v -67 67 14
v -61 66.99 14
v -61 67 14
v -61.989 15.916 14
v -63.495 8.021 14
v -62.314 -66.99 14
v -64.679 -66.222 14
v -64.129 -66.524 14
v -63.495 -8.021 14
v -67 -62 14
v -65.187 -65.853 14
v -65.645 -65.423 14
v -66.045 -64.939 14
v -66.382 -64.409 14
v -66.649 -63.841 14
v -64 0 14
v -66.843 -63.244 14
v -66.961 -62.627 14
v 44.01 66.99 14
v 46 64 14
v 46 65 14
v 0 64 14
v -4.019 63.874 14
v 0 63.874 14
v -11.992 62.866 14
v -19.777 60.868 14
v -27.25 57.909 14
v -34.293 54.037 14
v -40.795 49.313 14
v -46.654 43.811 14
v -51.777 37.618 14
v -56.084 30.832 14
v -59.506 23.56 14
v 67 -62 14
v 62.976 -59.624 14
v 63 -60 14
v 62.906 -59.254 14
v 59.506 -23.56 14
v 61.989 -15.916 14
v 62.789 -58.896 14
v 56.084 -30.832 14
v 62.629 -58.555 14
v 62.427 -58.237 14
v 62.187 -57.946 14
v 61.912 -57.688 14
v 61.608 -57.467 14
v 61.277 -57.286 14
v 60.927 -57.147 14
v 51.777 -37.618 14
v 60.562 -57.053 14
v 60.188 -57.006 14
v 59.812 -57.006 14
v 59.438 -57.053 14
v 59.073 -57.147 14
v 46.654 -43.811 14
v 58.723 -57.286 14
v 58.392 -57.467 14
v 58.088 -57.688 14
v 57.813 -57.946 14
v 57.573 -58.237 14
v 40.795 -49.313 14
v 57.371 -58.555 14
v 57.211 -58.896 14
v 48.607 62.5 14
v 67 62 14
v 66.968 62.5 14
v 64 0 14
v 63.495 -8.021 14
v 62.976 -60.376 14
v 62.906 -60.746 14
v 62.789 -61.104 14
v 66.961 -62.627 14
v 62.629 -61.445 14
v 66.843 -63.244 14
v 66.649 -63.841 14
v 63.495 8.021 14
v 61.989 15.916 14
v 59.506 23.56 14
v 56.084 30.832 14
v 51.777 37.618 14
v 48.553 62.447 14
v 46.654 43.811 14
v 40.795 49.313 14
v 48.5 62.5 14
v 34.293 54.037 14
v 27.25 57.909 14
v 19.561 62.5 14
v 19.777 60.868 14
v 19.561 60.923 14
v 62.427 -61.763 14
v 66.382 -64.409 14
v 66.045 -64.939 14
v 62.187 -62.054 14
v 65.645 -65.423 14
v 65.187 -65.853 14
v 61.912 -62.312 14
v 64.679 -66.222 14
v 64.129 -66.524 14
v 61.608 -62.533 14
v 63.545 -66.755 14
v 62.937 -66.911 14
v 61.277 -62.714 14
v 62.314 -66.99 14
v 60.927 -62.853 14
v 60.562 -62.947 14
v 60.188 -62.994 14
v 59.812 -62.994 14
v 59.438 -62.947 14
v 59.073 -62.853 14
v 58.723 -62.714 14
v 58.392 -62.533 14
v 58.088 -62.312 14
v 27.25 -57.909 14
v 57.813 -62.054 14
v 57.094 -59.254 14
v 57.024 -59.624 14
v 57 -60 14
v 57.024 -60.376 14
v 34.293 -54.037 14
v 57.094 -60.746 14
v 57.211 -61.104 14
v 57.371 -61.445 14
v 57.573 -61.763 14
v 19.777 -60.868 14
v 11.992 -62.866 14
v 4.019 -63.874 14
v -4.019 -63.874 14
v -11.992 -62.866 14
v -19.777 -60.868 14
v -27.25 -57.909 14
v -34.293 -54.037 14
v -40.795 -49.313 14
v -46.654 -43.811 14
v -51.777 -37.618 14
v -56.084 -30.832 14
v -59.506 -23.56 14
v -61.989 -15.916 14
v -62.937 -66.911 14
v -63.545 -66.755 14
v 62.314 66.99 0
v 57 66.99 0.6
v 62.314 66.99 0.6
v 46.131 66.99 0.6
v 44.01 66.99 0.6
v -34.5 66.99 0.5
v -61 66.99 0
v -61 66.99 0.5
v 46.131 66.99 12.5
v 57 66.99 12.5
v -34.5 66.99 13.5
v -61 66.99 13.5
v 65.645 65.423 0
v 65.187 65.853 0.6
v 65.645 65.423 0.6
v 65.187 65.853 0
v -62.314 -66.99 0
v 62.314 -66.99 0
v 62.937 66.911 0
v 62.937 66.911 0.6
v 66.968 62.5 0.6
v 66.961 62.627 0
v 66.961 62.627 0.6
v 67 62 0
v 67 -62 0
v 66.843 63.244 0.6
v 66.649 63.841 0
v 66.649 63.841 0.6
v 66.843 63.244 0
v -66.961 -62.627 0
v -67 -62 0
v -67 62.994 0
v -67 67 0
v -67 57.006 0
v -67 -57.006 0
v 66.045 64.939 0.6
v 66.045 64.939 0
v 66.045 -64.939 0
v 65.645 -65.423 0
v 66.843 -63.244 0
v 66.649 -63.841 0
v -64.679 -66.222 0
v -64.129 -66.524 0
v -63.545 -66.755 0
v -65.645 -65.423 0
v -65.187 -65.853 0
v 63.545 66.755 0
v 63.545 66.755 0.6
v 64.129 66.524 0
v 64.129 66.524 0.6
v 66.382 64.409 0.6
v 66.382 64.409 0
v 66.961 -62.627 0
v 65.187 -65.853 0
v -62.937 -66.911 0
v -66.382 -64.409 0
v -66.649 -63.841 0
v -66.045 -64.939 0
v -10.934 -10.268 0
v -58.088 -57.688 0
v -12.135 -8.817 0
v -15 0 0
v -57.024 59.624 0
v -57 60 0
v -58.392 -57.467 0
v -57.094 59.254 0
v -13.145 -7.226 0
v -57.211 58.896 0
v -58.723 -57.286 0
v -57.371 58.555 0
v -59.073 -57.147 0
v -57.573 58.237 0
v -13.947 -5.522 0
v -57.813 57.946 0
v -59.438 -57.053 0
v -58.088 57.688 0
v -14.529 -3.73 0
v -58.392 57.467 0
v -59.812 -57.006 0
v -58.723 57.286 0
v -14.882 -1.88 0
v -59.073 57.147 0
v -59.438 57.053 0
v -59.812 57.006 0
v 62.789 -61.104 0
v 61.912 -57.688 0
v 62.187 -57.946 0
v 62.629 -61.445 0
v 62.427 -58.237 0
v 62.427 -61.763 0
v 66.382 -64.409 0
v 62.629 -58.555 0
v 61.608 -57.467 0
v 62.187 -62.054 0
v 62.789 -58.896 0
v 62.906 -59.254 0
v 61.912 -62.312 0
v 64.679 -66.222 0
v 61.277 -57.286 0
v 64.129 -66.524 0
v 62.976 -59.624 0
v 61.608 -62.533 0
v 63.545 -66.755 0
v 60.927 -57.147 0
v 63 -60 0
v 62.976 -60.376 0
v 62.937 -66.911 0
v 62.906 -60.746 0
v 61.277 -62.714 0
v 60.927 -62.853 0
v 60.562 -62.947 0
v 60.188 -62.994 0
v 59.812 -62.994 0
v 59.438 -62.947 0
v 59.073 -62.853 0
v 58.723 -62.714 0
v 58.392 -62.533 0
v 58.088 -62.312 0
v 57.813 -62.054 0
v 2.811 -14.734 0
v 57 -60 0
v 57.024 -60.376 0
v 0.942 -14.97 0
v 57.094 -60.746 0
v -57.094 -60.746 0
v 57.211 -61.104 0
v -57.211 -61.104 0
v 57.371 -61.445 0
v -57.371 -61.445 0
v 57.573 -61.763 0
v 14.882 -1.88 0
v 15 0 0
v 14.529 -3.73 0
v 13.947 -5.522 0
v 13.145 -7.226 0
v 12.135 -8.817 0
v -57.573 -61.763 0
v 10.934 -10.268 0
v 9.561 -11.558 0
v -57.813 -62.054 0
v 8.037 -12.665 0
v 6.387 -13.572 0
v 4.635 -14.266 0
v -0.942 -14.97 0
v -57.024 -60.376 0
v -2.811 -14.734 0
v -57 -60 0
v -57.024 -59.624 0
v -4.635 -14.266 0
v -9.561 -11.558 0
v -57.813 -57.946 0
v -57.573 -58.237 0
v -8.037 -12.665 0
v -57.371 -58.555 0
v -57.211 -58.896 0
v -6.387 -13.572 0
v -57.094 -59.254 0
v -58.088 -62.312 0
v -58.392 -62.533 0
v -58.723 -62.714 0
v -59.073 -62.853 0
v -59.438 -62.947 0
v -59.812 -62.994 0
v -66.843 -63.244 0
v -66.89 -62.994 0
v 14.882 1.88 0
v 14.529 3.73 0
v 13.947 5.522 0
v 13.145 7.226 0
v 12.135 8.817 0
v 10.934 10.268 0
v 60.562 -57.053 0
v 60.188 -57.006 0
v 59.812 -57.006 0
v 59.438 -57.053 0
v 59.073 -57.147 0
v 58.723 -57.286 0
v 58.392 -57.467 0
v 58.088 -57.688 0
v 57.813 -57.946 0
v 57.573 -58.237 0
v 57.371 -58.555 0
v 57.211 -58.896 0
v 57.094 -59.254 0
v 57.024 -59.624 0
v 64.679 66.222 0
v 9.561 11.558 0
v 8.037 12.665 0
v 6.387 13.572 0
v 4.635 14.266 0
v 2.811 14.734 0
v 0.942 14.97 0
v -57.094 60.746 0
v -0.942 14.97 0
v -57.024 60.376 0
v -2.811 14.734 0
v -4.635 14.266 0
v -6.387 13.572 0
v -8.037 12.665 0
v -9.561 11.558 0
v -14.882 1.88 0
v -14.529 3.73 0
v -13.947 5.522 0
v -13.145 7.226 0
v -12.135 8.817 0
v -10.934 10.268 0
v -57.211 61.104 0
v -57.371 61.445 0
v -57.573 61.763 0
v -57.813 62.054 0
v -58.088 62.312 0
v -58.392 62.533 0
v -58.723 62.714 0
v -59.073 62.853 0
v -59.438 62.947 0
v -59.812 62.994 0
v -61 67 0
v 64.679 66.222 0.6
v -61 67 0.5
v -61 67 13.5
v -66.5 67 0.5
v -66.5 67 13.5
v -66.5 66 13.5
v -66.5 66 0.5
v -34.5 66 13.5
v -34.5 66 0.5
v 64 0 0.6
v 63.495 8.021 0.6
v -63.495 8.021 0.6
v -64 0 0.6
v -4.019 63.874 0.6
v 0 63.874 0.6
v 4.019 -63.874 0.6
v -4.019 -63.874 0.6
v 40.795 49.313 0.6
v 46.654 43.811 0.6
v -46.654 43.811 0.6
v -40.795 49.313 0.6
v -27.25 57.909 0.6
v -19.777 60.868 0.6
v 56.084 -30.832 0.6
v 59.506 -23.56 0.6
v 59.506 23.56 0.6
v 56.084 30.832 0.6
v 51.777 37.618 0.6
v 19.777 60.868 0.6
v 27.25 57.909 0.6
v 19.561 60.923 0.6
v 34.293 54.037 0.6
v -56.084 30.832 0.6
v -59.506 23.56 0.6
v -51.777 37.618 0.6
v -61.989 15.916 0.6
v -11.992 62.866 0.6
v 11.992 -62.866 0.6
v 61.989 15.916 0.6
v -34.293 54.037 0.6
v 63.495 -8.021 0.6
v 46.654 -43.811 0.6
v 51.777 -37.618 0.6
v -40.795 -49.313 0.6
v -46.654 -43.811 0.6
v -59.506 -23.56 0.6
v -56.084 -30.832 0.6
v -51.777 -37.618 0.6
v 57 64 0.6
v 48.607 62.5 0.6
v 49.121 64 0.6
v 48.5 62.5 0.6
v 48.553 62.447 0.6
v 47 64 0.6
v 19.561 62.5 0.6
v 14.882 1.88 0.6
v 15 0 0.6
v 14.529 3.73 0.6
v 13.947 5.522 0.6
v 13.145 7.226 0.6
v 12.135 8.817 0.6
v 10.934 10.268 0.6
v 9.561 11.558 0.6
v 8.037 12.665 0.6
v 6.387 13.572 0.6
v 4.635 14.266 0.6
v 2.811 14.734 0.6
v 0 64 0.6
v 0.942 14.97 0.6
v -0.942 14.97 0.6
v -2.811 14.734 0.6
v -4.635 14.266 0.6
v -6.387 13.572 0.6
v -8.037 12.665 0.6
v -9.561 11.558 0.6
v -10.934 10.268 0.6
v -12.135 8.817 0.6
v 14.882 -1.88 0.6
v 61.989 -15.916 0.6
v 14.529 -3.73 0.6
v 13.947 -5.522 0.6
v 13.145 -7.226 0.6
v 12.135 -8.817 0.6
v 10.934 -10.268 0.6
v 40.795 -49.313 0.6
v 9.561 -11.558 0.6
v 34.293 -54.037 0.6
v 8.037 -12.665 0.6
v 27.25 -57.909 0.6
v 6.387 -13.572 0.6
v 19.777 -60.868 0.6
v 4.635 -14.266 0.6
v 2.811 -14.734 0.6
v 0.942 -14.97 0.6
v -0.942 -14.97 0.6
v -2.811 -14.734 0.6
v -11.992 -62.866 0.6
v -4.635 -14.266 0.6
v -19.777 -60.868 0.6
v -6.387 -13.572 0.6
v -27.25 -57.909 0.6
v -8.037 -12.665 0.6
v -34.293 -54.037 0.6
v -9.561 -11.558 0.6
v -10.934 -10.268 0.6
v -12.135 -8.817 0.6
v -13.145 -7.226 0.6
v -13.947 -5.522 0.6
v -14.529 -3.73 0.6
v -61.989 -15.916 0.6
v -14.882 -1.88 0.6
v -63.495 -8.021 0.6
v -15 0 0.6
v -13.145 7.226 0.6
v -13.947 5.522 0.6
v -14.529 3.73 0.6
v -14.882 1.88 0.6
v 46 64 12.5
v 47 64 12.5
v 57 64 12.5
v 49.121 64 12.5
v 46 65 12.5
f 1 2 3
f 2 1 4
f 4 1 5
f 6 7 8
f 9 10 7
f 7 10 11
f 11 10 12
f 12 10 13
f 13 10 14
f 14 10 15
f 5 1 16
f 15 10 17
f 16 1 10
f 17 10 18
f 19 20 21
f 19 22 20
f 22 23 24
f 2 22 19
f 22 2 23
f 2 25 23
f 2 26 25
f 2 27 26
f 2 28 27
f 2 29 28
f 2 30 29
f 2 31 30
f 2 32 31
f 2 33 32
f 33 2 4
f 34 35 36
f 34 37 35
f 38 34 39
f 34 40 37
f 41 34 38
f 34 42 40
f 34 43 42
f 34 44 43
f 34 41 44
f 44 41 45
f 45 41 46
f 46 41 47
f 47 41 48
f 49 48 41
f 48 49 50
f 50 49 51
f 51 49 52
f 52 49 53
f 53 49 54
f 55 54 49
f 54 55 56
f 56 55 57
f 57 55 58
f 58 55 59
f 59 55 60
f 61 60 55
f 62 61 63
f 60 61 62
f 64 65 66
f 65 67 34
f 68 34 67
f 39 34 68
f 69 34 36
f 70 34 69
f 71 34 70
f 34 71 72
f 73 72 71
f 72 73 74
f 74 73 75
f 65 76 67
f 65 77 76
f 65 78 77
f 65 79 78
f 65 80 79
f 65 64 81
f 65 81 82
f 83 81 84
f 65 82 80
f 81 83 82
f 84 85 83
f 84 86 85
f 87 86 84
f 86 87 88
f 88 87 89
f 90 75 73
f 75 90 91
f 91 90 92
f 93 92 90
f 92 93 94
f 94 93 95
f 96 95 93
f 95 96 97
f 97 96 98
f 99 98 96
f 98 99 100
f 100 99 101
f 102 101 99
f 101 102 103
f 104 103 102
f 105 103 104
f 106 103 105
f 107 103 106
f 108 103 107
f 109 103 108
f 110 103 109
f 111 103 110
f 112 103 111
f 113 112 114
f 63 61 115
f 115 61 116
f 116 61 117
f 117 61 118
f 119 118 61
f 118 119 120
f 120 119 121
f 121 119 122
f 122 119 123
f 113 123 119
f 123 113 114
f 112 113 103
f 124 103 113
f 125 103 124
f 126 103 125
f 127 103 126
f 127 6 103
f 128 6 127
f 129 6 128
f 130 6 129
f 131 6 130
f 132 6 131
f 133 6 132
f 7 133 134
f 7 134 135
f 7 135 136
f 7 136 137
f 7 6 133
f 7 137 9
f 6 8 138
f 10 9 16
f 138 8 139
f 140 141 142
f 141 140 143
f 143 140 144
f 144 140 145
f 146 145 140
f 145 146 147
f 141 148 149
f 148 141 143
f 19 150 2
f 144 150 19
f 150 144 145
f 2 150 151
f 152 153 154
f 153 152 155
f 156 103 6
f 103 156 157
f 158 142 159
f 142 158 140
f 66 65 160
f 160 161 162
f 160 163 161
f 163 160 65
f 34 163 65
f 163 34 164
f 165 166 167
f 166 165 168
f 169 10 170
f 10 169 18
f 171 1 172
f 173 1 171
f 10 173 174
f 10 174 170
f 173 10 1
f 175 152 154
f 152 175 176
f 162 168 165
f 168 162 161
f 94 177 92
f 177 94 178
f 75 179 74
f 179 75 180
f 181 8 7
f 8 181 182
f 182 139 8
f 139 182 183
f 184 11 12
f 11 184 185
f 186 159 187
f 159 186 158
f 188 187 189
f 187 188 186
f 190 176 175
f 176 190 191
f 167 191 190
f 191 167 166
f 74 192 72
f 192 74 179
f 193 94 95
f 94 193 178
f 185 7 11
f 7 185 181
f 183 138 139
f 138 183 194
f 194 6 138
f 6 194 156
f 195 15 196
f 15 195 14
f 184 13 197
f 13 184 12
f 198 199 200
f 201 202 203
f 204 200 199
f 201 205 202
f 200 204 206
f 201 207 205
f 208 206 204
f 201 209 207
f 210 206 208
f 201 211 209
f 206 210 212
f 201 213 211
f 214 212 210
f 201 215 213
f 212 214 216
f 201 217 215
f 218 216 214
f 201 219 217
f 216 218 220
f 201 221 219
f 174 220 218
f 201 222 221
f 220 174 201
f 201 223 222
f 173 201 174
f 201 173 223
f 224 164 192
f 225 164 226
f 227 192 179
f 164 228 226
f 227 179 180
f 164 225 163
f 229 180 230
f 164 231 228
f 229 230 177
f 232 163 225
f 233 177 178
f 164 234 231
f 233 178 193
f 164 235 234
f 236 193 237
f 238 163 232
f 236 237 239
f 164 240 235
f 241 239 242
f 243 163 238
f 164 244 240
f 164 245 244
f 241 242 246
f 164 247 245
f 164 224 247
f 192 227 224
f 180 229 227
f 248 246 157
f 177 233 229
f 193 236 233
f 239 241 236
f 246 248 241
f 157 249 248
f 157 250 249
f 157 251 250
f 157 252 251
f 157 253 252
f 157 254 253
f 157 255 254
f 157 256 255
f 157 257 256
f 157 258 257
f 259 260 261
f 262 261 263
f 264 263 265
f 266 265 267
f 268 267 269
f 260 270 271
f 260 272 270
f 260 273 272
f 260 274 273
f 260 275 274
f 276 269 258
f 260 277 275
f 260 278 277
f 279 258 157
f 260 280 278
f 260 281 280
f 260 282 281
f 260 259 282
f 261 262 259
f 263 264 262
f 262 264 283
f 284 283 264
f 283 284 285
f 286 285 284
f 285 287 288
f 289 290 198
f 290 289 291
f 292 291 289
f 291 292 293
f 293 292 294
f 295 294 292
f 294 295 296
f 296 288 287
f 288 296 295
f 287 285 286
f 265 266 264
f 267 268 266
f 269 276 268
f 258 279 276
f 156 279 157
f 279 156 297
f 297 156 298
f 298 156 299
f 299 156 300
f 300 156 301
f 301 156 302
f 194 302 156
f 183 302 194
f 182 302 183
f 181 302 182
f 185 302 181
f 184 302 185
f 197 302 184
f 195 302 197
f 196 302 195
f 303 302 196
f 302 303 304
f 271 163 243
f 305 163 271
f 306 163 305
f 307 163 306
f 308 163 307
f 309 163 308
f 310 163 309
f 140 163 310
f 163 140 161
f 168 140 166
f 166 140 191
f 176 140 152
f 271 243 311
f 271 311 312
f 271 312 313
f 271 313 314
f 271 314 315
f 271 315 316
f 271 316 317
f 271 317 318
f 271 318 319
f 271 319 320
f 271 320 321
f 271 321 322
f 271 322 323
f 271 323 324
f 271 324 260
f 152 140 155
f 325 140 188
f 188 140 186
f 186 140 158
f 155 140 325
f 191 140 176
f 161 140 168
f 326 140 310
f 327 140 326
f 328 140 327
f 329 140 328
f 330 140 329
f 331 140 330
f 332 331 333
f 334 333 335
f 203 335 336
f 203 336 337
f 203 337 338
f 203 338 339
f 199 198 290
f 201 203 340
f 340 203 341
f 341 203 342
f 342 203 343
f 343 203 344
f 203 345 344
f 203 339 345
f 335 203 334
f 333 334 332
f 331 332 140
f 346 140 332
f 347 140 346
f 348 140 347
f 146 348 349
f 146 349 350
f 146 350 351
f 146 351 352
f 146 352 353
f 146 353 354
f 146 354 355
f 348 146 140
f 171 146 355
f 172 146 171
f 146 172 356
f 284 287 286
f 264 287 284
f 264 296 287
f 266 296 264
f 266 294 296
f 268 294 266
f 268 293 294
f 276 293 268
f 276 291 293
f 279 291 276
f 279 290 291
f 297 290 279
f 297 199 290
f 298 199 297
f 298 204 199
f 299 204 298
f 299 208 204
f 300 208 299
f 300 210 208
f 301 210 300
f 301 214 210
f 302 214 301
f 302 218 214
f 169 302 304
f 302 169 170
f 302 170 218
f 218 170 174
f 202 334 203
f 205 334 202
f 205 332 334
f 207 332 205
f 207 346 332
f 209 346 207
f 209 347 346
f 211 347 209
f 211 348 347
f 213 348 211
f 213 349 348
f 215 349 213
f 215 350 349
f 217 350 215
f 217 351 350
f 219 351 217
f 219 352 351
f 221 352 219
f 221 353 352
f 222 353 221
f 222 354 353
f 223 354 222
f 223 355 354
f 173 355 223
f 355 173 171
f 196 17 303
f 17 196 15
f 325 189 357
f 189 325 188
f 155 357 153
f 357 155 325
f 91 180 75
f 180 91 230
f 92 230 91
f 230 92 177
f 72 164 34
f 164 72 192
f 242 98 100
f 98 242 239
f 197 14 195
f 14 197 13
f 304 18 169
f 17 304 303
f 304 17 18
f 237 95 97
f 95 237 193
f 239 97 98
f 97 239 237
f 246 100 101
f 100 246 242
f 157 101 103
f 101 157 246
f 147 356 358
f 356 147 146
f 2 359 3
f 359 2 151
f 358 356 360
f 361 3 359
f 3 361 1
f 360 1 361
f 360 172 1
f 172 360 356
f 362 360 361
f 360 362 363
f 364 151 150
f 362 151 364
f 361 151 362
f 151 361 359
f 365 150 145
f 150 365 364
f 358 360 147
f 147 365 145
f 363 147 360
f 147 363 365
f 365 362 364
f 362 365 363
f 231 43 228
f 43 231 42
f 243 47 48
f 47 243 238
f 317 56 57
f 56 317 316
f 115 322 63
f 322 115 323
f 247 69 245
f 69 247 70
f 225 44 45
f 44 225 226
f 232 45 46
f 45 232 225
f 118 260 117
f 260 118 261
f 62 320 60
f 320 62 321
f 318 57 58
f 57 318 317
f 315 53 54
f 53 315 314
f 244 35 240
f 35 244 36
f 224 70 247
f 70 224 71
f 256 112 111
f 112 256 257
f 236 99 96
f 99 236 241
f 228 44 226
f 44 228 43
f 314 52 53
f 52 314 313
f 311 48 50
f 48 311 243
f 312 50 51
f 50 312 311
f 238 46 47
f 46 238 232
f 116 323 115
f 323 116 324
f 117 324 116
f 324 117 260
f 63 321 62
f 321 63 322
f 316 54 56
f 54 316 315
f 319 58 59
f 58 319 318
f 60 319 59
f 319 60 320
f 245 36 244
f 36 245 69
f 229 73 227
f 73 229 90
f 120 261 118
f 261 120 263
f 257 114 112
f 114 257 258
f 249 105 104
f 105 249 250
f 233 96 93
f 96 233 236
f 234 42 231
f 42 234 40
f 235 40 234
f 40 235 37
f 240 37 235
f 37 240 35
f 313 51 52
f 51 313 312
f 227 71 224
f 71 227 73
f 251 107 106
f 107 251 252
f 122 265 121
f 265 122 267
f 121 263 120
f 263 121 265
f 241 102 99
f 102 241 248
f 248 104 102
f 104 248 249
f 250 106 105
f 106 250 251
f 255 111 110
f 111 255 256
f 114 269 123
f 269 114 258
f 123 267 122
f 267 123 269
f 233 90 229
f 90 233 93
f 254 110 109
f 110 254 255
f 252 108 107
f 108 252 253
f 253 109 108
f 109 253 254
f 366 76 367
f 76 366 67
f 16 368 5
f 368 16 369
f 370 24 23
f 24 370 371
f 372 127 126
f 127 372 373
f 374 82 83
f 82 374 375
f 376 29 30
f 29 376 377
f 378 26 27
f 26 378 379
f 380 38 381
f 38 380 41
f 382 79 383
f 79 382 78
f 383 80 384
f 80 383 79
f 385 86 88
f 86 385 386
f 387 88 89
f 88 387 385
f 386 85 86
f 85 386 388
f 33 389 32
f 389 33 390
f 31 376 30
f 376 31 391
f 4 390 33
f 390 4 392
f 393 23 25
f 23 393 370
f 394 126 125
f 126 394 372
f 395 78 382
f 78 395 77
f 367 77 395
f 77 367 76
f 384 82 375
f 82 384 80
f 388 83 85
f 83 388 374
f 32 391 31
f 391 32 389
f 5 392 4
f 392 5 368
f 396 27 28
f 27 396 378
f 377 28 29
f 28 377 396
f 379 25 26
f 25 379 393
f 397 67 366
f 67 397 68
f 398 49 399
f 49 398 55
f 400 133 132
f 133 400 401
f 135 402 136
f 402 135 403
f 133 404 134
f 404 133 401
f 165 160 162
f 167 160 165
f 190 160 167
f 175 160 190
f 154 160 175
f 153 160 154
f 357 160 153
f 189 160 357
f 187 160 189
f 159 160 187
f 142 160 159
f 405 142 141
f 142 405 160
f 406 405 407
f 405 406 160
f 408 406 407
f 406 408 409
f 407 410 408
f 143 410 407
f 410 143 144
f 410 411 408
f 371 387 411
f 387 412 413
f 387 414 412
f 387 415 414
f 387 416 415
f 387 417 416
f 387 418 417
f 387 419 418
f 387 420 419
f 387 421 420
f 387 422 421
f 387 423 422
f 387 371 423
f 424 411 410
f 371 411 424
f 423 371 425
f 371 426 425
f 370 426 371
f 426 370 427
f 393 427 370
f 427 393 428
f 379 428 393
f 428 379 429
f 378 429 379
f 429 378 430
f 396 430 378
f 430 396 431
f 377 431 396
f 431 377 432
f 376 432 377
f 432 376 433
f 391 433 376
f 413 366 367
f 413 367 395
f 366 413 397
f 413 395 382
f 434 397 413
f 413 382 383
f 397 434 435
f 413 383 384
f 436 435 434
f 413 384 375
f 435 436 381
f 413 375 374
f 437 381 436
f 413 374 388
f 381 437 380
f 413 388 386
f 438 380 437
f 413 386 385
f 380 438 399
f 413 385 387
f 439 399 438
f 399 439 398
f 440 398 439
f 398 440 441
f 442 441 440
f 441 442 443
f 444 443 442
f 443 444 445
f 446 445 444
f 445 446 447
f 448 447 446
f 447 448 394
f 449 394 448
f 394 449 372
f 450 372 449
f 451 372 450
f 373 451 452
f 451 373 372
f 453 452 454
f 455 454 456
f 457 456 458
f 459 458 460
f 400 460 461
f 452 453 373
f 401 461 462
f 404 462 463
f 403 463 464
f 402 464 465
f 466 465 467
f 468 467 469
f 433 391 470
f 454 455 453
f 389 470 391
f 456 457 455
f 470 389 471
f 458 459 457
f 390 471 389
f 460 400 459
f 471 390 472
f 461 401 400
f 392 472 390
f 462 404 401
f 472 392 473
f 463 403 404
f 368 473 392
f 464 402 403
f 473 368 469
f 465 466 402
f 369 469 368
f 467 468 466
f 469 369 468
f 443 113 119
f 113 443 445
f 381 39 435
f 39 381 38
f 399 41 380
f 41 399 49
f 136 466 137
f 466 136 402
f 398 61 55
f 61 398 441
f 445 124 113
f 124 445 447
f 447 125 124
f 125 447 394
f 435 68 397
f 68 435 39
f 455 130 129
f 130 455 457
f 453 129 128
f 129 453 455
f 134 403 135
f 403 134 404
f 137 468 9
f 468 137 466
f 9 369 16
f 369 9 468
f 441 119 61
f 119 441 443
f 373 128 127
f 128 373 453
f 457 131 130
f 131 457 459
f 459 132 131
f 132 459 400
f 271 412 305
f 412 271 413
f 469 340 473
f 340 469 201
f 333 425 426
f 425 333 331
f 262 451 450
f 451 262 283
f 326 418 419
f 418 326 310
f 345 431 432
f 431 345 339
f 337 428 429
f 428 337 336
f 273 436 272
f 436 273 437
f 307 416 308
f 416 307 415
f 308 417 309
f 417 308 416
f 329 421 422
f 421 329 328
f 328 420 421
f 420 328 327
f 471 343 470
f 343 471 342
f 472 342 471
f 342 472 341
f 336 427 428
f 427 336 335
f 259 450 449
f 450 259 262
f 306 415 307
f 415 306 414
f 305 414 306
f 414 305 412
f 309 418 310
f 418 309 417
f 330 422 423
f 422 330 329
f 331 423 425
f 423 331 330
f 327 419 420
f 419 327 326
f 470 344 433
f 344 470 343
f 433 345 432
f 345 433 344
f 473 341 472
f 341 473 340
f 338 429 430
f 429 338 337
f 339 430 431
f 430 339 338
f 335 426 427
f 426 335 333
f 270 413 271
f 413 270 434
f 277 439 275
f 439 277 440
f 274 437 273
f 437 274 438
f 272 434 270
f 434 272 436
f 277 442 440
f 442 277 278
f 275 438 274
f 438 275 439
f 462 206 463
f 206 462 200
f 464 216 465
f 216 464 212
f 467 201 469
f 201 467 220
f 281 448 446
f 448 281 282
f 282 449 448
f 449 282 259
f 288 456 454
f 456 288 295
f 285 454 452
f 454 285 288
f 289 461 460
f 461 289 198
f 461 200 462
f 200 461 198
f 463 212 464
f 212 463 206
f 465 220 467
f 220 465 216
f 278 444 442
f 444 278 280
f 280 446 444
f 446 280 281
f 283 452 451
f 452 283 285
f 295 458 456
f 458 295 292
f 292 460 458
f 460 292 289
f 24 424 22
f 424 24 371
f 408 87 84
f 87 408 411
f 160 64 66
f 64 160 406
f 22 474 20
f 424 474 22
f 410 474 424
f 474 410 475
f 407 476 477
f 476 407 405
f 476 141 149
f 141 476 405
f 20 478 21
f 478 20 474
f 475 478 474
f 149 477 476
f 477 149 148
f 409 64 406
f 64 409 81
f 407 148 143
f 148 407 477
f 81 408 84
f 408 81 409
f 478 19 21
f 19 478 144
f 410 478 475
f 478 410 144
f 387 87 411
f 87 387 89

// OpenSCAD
$fn = 50;


difference() {
	union() {
		hull() {
			translate(v = [-62.0000000000, 62.0000000000, 0]) {
				cylinder(h = 14, r = 5);
			}
			translate(v = [62.0000000000, 62.0000000000, 0]) {
				cylinder(h = 14, r = 5);
			}
			translate(v = [-62.0000000000, -62.0000000000, 0]) {
				cylinder(h = 14, r = 5);
			}
			translate(v = [62.0000000000, -62.0000000000, 0]) {
				cylinder(h = 14, r = 5);
			}
		}
		translate(v = [-67.0000000000, 61.0000000000, 0]) {
			cube(size = [6, 6, 14]);
		}
	}
	union() {
		translate(v = [-67.5000000000, -60.0000000000, -250.0000000000]) {
			rotate(a = [0, 0, 0]) {
				difference() {
					union() {
						hull() {
							translate(v = [7.5000000000, 0, 0]) {
								cylinder(h = 250, r = 3.0000000000, r1 = 3.0000000000, r2 = 3.0000000000);
							}
							translate(v = [-7.5000000000, 0, 0]) {
								cylinder(h = 250, r = 3.0000000000, r1 = 3.0000000000, r2 = 3.0000000000);
							}
						}
					}
					union();
				}
			}
		}
		translate(v = [-67.5000000000, 60.0000000000, -250.0000000000]) {
			rotate(a = [0, 0, 0]) {
				difference() {
					union() {
						hull() {
							translate(v = [7.5000000000, 0, 0]) {
								cylinder(h = 250, r = 3.0000000000, r1 = 3.0000000000, r2 = 3.0000000000);
							}
							translate(v = [-7.5000000000, 0, 0]) {
								cylinder(h = 250, r = 3.0000000000, r1 = 3.0000000000, r2 = 3.0000000000);
							}
						}
					}
					union();
				}
			}
		}
		translate(v = [-66.5000000000, 66.0000000000, 0.5000000000]) {
			cube(size = [32, 1, 13.0000000000]);
		}
		translate(v = [60.0000000000, -60.0000000000, -50.0000000000]) {
			cylinder(h = 100, r = 3.0000000000);
		}
		translate(v = [0, 0, 0.6000000000]) {
			cylinder(h = 16.4000000000, r = 64.0000000000);
		}
		translate(v = [0, 0, -7.0000000000]) {
			cylinder(h = 14, r = 15.0000000000);
		}
		translate(v = [0.0000000000, 62.5000000000, 0.6000000000]) {
			cube(size = [67.0000000000, 1.5000000000, 16.4000000000]);
		}
		translate(v = [57.0000000000, 62.5000000000, 0.6000000000]) {
			cube(size = [10, 4.5000000000, 16.4000000000]);
		}
		translate(v = [46.0000000000, 62.5000000000, 12.5000000000]) {
			cube(size = [21, 4.5000000000, 1.5000000000]);
		}
		translate(v = [43.2500000000, 67.7500000000, 0.6000000000]) {
			rotate(a = [0, 0, -45]) {
				cube(size = [7.5000000000, 1.5000000000, 16.4000000000]);
			}
		}
		translate(v = [12.0610000000, 60.5000000000, 0.6000000000]) {
			cube(size = [7.5000000000, 2, 13.4000000000]);
		}
	}
}
